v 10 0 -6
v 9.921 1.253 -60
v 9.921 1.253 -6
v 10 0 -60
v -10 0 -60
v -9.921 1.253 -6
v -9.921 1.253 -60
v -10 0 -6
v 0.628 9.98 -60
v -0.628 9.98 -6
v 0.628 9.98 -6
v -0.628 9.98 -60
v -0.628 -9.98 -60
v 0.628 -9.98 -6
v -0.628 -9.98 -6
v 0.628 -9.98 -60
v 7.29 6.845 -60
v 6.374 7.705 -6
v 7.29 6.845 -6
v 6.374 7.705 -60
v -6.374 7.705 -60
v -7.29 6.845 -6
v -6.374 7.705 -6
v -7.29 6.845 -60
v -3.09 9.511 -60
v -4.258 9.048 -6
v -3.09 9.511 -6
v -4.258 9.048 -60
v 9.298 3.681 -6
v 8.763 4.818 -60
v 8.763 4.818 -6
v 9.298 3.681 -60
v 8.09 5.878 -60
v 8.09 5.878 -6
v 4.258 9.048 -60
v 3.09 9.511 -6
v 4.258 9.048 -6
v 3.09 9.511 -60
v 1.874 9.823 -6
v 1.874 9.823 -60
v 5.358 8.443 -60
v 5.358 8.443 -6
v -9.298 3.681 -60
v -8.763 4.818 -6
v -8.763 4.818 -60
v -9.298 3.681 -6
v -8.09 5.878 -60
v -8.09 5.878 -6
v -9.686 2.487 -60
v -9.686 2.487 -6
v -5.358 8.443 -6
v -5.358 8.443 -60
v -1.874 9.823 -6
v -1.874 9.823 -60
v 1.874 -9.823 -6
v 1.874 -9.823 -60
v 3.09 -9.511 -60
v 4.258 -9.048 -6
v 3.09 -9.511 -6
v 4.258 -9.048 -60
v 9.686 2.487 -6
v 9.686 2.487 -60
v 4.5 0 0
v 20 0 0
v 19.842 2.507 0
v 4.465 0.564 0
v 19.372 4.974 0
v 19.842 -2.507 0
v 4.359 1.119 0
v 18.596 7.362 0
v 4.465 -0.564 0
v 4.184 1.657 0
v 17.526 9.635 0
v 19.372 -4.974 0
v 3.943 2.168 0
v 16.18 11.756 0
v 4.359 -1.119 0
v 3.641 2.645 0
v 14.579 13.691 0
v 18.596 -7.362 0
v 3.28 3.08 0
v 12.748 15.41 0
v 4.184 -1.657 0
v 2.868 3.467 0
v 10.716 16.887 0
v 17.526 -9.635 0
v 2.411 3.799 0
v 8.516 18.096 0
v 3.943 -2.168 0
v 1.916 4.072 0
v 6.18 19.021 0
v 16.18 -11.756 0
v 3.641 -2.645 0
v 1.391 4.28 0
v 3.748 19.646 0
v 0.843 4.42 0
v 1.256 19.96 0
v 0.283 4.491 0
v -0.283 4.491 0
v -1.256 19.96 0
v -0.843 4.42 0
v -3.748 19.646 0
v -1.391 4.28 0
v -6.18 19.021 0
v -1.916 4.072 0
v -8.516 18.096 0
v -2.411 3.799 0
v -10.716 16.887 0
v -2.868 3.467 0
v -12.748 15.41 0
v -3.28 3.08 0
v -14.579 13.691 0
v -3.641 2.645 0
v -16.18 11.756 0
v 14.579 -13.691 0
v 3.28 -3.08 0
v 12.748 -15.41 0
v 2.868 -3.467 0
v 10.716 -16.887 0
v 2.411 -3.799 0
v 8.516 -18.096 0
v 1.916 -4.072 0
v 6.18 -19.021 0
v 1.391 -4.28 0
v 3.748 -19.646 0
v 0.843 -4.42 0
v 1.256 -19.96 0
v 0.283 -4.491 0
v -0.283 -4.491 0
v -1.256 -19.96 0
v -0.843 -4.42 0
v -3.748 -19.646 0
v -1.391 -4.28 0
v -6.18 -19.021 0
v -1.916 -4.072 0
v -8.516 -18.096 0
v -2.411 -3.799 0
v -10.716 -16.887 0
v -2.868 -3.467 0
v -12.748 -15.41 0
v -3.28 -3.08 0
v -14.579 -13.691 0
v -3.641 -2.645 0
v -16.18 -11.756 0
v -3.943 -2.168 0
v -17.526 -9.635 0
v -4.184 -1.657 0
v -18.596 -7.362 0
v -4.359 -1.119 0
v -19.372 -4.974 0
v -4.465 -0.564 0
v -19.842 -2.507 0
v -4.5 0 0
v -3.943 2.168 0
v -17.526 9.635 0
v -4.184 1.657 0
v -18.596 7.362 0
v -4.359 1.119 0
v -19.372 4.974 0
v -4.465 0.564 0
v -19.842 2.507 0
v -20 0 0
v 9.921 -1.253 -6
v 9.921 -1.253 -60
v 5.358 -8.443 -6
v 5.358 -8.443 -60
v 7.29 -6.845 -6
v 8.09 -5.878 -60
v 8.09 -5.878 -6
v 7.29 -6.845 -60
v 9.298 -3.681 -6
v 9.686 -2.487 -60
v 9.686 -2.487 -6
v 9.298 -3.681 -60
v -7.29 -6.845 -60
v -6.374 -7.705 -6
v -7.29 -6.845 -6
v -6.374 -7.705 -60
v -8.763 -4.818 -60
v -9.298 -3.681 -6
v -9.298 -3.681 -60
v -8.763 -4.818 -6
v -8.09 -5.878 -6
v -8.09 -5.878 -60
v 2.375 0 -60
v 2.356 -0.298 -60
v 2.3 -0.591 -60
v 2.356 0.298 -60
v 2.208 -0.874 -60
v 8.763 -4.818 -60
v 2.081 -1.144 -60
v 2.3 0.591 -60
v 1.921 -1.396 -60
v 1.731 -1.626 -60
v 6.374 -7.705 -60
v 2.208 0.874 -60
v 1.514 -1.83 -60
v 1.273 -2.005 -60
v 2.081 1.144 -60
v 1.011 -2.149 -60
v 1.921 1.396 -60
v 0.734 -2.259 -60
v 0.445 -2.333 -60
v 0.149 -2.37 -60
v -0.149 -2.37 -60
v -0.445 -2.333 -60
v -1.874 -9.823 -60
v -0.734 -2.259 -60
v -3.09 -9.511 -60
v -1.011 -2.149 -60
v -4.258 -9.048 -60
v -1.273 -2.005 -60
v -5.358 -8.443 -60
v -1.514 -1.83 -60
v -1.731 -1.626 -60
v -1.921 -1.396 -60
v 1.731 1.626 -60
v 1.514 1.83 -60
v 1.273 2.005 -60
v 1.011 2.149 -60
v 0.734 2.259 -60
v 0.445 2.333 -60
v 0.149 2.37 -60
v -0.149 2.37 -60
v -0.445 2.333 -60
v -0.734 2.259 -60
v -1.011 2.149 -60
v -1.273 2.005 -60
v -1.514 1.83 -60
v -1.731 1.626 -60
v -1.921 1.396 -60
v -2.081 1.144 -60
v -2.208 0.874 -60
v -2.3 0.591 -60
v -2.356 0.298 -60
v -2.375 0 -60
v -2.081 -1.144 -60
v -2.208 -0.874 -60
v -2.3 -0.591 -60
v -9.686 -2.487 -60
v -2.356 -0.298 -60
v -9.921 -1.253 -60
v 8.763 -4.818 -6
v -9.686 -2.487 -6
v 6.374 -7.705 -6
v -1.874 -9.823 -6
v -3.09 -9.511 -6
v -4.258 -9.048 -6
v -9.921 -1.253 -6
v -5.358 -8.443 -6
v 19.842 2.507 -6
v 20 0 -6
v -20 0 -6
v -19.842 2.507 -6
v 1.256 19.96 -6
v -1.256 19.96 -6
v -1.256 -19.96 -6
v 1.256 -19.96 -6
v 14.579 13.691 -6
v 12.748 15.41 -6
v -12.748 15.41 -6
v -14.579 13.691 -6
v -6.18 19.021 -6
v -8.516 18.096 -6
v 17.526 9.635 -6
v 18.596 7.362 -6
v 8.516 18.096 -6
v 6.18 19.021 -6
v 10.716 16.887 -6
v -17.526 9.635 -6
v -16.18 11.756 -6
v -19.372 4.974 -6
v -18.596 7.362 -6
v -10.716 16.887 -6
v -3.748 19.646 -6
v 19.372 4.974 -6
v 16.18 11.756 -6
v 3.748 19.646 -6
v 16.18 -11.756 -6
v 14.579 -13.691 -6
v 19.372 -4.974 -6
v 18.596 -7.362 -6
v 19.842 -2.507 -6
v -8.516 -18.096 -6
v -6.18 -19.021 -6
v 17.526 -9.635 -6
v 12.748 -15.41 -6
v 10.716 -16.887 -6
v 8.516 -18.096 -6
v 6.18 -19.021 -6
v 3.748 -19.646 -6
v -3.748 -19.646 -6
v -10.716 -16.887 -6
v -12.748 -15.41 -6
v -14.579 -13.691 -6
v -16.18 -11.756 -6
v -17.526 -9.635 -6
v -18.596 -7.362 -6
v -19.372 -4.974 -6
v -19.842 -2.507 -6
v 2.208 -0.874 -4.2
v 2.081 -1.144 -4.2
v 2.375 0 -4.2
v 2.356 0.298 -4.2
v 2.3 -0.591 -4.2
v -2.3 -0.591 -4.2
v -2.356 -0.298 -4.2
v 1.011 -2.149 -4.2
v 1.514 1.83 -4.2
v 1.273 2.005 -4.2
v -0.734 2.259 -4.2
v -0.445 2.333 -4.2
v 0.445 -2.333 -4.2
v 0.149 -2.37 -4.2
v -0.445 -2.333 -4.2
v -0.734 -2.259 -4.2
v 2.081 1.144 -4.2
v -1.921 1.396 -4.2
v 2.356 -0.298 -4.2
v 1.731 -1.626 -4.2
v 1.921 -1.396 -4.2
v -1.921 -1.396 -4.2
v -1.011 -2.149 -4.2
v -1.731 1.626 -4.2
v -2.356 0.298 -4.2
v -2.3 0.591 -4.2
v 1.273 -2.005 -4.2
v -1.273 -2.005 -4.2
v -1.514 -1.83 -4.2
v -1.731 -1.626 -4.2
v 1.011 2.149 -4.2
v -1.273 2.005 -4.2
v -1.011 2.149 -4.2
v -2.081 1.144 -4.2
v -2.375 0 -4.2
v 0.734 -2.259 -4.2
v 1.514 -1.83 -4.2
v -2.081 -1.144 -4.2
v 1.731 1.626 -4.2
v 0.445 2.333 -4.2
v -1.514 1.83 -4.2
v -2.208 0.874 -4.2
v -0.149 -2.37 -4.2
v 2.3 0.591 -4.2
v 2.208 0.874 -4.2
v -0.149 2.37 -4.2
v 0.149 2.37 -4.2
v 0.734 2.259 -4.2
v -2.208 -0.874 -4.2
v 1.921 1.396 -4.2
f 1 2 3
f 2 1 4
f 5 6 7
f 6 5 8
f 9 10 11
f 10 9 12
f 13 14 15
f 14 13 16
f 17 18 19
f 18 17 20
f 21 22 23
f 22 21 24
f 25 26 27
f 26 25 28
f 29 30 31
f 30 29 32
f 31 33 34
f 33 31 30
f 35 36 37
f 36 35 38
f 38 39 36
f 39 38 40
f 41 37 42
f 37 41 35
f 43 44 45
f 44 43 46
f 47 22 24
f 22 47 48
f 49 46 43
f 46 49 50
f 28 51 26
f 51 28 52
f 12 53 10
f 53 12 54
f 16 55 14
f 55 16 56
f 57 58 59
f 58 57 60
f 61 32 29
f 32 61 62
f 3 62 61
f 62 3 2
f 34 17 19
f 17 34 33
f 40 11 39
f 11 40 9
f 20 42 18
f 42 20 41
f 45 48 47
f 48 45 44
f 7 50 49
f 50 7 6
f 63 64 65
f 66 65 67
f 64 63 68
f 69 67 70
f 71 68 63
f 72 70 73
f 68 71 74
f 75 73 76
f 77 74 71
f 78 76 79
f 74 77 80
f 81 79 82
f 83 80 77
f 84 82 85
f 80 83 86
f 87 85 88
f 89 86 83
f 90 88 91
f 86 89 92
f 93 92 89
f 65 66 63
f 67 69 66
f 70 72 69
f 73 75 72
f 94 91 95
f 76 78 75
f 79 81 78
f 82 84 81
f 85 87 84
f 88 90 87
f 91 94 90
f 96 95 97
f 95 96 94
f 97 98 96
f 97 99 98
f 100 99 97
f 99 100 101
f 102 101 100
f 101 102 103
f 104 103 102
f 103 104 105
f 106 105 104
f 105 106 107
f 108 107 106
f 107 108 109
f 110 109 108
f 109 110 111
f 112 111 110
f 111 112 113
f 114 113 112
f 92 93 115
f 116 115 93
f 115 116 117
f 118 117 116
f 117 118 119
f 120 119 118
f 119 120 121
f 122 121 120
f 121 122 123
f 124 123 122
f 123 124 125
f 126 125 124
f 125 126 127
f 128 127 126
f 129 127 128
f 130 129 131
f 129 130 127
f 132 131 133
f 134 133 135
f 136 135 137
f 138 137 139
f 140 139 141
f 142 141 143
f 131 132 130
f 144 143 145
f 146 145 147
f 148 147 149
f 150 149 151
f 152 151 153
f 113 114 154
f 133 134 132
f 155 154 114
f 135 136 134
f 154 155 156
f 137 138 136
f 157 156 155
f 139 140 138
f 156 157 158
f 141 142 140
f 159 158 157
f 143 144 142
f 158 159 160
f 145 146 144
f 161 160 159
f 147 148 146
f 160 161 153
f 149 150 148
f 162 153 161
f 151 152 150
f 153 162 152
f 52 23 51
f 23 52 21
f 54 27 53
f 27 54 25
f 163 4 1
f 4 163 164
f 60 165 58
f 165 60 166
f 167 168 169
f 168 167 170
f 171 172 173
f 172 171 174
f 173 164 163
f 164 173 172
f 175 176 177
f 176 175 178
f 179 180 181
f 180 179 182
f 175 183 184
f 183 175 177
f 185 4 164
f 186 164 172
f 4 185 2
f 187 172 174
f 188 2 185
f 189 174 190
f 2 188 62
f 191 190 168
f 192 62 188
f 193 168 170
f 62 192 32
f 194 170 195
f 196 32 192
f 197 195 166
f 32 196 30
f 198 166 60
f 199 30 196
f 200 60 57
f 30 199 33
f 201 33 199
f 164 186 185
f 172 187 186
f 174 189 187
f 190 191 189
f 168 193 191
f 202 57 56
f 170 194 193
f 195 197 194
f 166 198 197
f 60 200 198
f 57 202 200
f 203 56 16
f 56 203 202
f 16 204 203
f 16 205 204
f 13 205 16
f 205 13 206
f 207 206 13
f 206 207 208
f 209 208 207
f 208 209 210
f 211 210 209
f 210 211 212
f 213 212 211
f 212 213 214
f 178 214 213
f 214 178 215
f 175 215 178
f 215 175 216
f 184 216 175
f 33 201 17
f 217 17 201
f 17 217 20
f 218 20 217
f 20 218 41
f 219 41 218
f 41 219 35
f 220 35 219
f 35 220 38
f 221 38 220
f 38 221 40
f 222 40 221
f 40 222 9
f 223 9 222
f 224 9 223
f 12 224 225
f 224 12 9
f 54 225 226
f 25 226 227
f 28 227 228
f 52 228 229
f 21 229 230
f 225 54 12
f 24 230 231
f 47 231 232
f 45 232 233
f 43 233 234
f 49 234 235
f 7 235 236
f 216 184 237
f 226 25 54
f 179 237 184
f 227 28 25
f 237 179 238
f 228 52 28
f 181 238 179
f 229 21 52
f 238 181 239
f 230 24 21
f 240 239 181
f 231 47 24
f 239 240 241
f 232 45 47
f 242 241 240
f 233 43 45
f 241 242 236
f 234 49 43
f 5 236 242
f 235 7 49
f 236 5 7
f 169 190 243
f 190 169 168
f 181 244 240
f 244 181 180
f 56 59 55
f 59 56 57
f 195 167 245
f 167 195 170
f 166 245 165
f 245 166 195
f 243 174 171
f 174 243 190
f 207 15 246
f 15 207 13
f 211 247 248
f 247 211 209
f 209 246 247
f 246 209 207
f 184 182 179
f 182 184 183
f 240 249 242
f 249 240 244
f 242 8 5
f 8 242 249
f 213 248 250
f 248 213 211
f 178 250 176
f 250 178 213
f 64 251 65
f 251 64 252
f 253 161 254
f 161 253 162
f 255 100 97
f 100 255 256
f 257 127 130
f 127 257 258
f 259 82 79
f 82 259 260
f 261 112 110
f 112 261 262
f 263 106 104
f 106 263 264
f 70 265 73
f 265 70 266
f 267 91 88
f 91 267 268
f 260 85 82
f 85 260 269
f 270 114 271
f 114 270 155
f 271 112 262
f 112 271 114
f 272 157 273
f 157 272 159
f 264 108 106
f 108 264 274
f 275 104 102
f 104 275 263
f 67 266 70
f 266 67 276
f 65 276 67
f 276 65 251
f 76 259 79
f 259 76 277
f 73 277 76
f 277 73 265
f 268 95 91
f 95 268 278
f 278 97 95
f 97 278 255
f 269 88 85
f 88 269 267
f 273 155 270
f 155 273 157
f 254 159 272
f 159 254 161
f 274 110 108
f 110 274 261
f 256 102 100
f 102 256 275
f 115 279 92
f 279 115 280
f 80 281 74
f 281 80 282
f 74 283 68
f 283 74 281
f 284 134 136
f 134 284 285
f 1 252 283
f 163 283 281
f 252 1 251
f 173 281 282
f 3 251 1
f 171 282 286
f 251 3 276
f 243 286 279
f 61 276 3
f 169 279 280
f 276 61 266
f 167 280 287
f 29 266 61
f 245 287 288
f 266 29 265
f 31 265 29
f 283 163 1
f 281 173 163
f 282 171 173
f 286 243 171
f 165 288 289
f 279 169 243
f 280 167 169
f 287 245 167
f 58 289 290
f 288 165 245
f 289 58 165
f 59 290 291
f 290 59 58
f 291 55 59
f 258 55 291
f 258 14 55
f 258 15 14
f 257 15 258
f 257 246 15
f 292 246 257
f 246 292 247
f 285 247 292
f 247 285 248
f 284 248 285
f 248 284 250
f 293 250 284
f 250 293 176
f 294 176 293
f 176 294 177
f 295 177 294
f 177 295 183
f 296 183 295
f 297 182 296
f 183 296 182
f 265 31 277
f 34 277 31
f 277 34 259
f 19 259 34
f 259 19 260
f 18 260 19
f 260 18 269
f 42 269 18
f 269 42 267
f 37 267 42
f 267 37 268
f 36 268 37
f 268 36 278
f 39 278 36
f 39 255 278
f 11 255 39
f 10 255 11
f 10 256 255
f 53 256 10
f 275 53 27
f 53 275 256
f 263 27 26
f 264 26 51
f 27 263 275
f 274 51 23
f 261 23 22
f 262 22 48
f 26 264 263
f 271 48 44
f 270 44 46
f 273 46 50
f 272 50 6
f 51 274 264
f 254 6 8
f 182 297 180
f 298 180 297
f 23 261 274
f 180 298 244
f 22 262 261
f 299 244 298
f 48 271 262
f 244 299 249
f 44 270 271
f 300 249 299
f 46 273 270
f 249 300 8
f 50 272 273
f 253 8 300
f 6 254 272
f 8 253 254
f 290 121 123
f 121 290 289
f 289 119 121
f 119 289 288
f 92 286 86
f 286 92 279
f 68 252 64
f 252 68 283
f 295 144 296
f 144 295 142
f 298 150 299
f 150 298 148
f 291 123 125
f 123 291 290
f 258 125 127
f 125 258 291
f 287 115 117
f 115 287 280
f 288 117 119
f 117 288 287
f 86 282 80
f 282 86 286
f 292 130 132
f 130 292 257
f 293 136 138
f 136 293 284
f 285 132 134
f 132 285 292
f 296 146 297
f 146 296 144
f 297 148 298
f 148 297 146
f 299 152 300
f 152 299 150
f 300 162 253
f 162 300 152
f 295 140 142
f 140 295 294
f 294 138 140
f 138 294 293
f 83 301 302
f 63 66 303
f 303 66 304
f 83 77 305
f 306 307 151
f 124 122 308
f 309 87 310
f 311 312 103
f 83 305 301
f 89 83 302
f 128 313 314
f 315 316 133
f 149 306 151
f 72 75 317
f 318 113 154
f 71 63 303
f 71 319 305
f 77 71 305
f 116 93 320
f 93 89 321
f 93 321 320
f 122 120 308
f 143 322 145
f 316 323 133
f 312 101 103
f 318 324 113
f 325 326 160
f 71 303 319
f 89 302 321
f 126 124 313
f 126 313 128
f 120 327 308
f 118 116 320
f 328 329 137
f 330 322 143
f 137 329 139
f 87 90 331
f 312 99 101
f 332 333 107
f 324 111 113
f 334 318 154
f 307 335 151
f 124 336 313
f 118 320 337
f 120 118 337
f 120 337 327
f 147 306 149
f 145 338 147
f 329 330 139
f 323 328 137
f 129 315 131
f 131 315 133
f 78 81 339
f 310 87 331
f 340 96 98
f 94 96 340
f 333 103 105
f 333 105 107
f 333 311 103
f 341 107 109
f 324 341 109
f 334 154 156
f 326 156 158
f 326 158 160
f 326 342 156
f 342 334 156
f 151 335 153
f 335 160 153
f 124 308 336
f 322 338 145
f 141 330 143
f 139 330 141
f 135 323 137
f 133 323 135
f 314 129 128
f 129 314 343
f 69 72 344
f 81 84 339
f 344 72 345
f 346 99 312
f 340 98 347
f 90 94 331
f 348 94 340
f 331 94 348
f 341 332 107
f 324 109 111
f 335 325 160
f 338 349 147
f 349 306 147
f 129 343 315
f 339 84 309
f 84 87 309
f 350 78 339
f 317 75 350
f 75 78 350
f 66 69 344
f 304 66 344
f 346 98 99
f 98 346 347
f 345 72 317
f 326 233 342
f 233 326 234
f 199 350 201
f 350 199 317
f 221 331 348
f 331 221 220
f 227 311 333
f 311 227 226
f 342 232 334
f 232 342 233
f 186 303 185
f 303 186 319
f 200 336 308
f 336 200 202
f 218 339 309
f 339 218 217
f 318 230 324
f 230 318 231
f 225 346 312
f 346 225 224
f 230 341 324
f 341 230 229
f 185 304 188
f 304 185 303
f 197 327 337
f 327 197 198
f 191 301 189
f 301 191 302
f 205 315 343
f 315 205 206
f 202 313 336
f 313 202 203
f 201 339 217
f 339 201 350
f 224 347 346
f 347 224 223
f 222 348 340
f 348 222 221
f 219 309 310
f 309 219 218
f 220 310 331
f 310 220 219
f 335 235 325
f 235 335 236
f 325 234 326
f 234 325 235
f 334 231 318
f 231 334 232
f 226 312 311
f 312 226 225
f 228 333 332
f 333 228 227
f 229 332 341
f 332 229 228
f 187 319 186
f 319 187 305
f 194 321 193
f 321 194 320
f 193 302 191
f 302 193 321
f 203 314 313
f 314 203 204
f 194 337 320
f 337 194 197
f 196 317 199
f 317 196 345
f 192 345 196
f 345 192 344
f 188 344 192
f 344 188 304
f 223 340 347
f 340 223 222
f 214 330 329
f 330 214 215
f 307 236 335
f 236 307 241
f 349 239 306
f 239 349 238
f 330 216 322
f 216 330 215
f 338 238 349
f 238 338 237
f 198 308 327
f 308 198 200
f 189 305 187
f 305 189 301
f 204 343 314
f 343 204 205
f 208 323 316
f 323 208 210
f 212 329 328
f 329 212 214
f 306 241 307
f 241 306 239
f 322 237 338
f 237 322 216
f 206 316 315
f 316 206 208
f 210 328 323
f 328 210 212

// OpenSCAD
$fn = 50;


difference() {
	union() {
		translate(v = [0, 0, -60.0000000000]) {
			cylinder(h = 60, r = 10.0000000000);
		}
		translate(v = [0, 0, -6.0000000000]) {
			cylinder(h = 6, r = 20.0000000000);
		}
	}
	union() {
		translate(v = [0, 0, 0]) {
			rotate(a = [0, 0, 0]) {
				difference() {
					union() {
						#translate(v = [0, 0, -60.0000000000]) {
							cylinder(h = 60, r = 2.2500000000);
						}
						#translate(v = [0, 0, -4.2000000000]) {
							cylinder(h = 4.2000000000, r1 = 2.3750000000, r2 = 4.5000000000);
						}
						#translate(v = [0, 0, -60.0000000000]) {
							cylinder(h = 60, r = 2.3750000000);
						}
						#translate(v = [0, 0, -60.0000000000]) {
							cylinder(h = 60, r = 2.2500000000);
						}
					}
					union();
				}
			}
		}
	}
}
